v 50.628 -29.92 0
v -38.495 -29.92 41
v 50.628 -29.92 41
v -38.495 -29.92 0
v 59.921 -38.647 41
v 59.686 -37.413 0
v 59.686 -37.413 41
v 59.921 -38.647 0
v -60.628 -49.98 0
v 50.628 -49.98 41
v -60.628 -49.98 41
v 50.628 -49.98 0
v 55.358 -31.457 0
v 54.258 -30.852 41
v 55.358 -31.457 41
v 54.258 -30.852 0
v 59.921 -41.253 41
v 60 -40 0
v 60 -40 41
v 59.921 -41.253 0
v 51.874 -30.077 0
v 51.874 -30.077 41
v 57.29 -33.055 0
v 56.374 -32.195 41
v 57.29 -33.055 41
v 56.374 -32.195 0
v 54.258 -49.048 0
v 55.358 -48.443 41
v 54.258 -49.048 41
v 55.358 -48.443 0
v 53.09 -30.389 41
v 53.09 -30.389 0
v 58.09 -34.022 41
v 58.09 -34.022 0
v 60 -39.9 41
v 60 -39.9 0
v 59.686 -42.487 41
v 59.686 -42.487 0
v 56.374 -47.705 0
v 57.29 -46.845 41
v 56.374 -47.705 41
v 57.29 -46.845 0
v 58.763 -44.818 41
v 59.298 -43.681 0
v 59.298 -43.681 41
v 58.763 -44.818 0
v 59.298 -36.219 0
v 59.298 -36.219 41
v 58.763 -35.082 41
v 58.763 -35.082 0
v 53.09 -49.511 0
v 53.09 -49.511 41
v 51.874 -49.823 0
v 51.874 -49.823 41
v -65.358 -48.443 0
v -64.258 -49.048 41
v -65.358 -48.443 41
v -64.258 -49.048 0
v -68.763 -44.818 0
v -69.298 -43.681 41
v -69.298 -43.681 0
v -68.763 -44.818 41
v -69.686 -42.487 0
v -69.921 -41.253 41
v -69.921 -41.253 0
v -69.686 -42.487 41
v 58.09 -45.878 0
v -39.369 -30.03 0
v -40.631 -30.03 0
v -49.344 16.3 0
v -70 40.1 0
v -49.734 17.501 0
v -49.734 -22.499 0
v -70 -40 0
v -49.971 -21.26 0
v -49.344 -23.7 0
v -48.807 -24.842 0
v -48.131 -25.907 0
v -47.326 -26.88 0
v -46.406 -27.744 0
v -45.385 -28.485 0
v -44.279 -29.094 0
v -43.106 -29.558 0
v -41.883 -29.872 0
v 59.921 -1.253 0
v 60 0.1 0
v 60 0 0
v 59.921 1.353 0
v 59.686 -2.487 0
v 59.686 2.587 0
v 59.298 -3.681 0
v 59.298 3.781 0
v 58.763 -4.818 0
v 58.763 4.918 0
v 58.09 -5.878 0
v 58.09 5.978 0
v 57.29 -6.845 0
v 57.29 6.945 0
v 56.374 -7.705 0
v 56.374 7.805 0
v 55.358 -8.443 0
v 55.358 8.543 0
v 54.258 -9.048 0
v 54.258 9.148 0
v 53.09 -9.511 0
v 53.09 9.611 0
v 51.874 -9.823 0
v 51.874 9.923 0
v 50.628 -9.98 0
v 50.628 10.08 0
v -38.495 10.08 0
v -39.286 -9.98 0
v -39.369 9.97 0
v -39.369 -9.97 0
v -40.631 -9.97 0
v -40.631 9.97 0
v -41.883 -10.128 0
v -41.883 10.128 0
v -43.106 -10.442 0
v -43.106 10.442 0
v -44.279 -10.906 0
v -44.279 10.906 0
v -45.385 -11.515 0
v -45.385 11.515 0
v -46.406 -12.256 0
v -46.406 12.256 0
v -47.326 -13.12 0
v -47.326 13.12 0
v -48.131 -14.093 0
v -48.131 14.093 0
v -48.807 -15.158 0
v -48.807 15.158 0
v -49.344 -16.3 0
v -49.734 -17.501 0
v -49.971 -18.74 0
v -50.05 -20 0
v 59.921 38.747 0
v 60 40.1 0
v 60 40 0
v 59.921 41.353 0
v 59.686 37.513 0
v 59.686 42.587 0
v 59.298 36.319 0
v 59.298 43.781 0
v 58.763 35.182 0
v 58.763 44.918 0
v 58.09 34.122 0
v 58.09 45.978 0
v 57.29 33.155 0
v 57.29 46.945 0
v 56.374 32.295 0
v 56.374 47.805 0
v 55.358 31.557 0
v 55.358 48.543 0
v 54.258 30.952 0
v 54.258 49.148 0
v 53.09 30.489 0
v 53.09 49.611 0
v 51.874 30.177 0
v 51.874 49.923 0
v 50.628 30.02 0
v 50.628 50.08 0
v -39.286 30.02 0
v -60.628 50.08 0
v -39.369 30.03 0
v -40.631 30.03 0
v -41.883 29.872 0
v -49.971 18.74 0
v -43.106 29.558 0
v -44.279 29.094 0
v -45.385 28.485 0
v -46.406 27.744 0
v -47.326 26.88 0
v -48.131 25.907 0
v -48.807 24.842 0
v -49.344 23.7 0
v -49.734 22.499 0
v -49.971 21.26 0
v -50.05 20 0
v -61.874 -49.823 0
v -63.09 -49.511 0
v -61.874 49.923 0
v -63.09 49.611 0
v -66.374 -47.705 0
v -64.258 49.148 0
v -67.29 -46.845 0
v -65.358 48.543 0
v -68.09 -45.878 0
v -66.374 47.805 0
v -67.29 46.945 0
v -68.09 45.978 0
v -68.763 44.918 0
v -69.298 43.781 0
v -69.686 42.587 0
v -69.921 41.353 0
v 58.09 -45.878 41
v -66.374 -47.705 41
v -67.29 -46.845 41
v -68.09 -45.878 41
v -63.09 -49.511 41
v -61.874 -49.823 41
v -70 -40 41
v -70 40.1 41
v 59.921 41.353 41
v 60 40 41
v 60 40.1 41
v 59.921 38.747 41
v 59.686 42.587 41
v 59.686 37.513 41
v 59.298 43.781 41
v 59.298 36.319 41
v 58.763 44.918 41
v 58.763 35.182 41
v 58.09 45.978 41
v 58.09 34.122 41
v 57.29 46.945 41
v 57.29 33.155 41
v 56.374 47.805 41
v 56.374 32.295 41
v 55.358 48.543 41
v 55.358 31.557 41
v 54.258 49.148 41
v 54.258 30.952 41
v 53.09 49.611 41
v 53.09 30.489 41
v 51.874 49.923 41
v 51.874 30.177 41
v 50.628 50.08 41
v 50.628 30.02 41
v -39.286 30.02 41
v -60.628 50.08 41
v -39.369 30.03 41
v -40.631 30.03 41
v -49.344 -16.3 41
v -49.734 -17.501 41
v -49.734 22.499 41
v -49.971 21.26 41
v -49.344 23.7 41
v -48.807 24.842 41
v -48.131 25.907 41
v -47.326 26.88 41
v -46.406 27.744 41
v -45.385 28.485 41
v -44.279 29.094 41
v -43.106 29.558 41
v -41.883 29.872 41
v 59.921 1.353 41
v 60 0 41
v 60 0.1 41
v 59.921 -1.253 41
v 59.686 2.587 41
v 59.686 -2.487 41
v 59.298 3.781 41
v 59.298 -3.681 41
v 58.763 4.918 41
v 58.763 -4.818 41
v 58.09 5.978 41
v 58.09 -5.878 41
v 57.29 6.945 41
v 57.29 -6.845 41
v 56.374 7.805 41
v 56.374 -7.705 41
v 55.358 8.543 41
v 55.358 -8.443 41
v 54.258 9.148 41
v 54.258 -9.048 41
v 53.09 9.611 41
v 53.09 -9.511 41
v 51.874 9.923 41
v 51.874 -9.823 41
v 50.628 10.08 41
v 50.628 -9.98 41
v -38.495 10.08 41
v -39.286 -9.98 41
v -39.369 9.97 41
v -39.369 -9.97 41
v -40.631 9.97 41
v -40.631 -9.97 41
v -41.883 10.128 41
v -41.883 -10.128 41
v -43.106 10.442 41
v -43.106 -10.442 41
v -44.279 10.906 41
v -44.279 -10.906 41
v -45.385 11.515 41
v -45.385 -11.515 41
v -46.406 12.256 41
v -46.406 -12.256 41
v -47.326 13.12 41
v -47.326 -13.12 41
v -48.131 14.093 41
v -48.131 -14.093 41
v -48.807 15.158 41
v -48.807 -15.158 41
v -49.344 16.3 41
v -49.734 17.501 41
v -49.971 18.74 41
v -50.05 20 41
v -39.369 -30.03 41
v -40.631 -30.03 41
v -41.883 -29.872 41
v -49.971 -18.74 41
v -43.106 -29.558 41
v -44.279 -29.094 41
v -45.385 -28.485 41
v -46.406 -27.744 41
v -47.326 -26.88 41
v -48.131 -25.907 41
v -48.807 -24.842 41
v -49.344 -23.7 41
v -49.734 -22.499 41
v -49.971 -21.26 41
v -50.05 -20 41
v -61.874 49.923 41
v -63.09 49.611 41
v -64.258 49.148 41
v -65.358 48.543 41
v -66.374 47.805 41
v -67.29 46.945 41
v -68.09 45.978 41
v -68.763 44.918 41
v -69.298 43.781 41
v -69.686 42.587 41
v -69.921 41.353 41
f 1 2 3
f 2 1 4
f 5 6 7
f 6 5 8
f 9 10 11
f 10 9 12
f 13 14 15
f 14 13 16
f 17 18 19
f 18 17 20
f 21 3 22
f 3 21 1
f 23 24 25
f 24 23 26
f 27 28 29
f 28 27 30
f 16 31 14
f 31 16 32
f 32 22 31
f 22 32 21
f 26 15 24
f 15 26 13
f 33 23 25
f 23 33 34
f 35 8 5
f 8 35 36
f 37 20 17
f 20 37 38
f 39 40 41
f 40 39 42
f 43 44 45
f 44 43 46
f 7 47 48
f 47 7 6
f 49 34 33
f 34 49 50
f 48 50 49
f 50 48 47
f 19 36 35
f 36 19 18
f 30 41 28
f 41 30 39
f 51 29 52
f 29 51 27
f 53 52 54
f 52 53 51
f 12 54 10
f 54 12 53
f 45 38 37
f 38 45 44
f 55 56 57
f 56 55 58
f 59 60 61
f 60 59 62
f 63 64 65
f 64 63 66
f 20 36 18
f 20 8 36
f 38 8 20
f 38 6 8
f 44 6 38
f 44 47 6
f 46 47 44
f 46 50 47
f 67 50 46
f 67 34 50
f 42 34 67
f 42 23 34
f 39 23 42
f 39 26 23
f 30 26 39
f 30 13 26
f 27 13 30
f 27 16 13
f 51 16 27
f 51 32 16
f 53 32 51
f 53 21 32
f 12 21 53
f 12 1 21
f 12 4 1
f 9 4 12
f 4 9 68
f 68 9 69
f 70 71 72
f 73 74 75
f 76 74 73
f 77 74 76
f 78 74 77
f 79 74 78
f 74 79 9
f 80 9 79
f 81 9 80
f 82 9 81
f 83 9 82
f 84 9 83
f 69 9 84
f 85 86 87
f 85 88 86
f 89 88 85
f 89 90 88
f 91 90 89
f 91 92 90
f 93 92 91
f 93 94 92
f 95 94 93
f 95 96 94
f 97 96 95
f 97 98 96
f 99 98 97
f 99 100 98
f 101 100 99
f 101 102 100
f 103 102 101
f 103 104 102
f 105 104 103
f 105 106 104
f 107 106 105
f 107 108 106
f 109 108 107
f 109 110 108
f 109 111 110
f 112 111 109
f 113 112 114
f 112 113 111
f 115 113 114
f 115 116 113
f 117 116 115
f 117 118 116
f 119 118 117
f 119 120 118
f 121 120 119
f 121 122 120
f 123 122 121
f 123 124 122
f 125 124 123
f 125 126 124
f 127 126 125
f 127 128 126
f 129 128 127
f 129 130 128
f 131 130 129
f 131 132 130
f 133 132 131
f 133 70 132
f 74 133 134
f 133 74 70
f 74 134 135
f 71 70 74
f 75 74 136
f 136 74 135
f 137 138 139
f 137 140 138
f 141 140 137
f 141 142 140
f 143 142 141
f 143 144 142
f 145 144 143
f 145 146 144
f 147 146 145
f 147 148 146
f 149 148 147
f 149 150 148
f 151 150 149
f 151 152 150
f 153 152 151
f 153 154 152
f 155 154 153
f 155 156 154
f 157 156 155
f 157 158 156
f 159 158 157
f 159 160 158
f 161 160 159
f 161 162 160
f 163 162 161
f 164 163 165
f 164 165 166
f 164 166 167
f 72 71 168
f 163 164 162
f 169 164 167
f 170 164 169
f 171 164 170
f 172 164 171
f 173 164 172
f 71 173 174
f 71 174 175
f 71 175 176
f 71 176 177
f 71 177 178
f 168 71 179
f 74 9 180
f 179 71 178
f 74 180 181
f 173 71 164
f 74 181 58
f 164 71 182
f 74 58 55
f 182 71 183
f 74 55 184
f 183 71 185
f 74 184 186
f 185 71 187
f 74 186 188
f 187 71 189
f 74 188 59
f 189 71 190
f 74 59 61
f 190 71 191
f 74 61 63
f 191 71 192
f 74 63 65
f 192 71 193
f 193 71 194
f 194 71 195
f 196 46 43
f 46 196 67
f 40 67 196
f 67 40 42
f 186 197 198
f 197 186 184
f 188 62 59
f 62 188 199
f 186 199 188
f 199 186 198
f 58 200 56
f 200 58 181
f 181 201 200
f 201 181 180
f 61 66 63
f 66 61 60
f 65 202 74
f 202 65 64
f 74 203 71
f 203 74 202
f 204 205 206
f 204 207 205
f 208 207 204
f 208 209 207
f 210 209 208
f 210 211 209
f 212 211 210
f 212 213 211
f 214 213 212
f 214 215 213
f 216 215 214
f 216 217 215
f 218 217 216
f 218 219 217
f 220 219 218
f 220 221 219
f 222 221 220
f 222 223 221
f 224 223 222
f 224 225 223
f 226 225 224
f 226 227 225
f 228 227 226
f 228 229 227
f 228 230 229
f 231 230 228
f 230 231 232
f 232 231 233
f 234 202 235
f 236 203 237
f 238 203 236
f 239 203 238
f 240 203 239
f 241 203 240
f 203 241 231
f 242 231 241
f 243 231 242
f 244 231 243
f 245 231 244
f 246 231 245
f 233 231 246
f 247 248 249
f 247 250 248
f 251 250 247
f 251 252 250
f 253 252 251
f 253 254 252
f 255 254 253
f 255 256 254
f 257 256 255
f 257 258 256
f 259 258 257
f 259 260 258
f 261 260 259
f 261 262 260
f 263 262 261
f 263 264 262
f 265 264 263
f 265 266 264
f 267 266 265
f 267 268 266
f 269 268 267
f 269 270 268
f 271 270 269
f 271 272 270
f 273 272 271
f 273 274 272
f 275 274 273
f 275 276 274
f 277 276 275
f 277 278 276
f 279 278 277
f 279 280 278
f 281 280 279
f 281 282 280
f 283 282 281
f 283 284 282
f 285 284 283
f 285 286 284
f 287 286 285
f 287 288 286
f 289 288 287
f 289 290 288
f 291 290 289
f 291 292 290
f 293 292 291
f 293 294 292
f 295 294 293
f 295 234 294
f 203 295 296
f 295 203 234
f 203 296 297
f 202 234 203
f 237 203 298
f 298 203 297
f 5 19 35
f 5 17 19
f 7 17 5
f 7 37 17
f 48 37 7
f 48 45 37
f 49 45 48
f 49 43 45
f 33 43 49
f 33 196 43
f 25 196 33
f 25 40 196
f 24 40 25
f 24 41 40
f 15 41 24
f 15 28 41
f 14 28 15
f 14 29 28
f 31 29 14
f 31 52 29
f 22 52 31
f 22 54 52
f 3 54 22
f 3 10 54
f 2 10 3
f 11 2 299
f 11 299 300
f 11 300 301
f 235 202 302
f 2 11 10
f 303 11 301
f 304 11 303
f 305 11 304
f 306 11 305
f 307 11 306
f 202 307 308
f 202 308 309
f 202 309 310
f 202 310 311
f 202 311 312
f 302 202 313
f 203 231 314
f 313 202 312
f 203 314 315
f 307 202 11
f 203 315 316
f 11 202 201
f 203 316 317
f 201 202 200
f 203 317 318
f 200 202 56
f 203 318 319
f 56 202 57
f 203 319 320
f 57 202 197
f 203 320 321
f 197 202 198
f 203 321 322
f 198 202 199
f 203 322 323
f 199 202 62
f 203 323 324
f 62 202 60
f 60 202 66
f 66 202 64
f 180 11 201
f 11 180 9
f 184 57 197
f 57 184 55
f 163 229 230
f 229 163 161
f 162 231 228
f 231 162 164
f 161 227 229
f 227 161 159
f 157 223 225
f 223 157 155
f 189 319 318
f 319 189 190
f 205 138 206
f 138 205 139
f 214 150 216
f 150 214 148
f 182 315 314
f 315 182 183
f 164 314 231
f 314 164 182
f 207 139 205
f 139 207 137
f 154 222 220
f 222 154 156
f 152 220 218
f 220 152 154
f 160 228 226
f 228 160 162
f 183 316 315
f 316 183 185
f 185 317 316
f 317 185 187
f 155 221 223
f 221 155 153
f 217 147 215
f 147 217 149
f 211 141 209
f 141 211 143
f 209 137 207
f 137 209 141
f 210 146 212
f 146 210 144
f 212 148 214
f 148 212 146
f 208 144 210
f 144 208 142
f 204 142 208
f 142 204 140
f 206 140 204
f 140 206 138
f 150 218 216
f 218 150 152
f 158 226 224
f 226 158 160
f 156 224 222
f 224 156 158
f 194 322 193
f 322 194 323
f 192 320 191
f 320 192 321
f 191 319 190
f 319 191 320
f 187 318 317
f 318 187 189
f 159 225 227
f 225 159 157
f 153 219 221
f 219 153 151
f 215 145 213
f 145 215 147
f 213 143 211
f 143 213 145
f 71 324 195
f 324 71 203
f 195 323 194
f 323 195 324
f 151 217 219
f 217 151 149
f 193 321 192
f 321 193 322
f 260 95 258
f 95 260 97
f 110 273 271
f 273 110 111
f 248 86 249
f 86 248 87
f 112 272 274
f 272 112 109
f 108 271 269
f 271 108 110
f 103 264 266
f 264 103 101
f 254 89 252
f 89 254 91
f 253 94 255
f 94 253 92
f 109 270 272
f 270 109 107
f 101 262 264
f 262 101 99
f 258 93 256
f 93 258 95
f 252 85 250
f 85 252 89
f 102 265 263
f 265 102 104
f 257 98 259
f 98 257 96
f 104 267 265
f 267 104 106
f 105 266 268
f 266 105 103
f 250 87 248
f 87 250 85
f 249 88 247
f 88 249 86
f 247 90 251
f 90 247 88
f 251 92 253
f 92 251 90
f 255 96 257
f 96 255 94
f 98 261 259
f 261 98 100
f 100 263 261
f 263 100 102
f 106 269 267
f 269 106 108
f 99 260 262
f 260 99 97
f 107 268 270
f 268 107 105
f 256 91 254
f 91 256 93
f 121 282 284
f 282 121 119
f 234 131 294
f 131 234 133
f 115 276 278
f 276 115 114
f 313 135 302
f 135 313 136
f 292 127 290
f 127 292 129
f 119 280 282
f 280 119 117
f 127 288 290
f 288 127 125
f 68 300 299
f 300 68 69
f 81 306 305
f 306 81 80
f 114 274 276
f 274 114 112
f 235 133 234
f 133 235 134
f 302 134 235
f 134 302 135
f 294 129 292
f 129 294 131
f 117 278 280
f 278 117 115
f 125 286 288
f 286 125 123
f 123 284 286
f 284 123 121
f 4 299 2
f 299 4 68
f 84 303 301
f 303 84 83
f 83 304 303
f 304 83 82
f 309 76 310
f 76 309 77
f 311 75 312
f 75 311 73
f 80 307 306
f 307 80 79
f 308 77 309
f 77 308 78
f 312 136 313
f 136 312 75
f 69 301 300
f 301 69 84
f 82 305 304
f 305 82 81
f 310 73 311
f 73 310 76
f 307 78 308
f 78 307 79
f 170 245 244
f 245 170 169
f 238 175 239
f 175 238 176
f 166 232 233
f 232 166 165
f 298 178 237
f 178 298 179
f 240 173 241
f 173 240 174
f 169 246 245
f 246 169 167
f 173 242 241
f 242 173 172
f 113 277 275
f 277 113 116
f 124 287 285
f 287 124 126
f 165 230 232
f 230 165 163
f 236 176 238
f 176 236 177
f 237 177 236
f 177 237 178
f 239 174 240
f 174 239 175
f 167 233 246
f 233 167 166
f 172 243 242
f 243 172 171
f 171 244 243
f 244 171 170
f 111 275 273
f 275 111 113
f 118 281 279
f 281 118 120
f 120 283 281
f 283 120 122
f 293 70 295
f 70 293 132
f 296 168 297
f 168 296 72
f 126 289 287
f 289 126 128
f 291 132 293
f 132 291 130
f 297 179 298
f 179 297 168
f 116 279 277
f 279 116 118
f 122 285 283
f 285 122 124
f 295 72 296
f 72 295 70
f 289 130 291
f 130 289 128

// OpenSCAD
//-------------------------------------------------------------------------------------------
// Temp Tower PLA
//---------------------------
// Nozzle 0.4
//---------------------------
// ContinusSpeed Script
//---------------------------
// StartTempTower       : 220 
// Incremental Temp     : -5
//---------------------------
// Layer = 0.16 (First layer 0.2)
// Layer Change         : 52
// Offset Layer         : 5
//---------------------------
// Based on a design proposed by stoempie https://www.thingiverse.com/thing:2493504
// Freely adapted by 5@xes  2020
//-------------------------------------------------------------------------------------------
// Modification 01/2022 increase the wall thickness to 4 Line_Width
//-------------------------------------------------------------------------------------------

$fn=50;
font = "Arial:style=Bold";

Hc=0.2; // Layer Height
Line_Width = 0.4; // line Width

Height = 200*Hc;
letter_size = 0.30*Height;
letter_height = Line_Width;

Base();


module Base() {
  translate([-60, -40, 0]) difference() {  
    minkowski() {
        union() {
            translate([0, 0, 0]) cube([10,80,Height], center = false);
            translate([0, 0, 0]) cube([110,0.1,Height], center = false);
            translate([0, 40, 0]) cube([110,0.1,Height], center = false);
            translate([0, 80, 0]) cube([110,0.1,Height], center = false);
        }
      cylinder(r=10,h=1, center = false);
    }
    translate([20, 20, 0]) cylinder(h = Height*2, r1 = 10.05, r2 = 10.05, center = false);
    translate([20, 60, 0]) cylinder(h = Height*2, r1 = 10.05, r2 = 10.05, center = false);
  }
}

module letter(Txt) {
  color("Yellow")
  linear_extrude(height = letter_height) {
    text(Txt, size = letter_size, font = font, halign = "center", valign = "center");
  }
}
